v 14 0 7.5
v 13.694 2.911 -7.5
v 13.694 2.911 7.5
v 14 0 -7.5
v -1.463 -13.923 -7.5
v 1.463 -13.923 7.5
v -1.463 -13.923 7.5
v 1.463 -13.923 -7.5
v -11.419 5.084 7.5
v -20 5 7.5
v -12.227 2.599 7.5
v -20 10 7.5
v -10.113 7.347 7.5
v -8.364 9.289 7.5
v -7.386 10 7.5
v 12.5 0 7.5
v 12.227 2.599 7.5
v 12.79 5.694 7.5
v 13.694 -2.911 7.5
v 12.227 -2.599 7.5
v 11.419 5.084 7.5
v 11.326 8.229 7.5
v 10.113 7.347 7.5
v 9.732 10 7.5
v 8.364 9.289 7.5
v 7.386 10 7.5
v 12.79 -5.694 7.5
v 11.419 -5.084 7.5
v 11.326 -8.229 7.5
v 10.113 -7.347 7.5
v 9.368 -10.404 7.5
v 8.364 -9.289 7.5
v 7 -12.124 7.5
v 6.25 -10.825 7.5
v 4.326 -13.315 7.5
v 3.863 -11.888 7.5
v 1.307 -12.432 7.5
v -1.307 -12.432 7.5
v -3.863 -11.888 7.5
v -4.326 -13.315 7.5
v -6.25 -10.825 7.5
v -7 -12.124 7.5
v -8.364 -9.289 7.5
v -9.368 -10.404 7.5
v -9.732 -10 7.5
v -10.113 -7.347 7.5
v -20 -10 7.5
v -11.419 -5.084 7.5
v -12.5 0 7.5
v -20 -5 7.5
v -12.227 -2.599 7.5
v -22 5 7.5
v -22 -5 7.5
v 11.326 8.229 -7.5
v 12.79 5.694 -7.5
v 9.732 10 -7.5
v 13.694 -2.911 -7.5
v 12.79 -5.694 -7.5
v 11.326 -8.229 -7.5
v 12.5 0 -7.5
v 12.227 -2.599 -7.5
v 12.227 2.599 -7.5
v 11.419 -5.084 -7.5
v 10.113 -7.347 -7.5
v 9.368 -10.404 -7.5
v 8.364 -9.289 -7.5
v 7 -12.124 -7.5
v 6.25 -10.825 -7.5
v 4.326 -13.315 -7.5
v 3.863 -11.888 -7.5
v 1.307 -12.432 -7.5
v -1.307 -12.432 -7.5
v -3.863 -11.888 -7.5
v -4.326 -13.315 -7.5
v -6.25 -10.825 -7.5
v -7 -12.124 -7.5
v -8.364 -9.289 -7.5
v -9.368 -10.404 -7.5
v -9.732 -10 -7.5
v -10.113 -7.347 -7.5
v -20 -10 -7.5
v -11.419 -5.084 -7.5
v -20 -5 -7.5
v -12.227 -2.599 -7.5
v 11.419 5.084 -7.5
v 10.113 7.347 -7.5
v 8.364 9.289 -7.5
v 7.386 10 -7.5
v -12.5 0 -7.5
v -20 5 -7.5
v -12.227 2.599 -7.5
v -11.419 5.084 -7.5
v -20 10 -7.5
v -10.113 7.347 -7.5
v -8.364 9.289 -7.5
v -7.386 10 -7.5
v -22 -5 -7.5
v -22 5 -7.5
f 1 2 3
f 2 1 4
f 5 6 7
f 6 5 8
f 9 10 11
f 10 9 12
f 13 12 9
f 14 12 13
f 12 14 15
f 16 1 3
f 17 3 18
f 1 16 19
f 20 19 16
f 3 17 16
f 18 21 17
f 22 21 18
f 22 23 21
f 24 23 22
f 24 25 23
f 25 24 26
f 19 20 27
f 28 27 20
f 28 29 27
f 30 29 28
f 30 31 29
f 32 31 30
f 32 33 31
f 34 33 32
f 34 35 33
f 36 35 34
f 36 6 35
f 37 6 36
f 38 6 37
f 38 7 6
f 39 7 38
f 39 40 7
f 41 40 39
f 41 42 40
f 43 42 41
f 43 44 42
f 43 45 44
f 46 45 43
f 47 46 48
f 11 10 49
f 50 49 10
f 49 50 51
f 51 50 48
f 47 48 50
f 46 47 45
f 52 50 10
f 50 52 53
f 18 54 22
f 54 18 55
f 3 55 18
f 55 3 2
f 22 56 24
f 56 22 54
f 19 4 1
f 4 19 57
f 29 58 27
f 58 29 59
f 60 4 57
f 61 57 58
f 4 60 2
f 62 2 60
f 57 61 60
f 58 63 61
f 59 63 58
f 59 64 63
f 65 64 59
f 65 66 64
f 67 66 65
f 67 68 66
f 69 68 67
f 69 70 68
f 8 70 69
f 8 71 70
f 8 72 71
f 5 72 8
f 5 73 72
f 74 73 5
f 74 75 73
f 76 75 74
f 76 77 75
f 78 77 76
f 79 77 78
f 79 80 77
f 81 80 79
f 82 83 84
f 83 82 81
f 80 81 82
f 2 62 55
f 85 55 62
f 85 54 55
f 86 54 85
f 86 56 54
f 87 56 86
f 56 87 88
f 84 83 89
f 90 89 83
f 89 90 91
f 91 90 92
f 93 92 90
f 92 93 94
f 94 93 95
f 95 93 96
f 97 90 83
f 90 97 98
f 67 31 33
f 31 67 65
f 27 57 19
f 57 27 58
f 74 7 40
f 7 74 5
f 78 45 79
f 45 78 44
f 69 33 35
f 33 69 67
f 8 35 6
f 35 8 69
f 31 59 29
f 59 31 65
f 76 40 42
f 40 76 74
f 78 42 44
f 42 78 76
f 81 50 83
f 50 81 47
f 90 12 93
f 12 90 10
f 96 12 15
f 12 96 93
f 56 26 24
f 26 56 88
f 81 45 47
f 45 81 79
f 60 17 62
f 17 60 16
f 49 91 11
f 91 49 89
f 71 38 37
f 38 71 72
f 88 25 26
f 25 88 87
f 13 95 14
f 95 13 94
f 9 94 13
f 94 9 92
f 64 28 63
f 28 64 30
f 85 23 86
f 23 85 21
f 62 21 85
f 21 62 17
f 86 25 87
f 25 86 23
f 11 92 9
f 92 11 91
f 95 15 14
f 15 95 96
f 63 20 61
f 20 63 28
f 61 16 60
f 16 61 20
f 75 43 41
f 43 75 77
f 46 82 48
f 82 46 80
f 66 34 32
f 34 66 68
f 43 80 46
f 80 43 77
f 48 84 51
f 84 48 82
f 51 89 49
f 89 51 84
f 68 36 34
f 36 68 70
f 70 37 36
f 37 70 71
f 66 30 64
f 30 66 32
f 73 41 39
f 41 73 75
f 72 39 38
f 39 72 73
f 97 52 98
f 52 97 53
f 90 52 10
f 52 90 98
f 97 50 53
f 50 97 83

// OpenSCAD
// ------------------------------------------------------------------------------------------
// Swatch Holder for Filament Spool Holder (1/2) - Peg Clip
// ------------------------------------------------------------------------------------------
//
// Clip that snuggly fits around the pegs of this filament spool holder: 
// https://www.printables.com/model/388935-fully-printable-filament-storage-rack
//
// Print in rendered orientation, no supports or brim should be required
//
// https://github.com/SiDtheTurtle/CAD/SwatchHolderForFilamentSpoolHolder/
//
// ------------------------------------------------------------------------------------------

// ------------------------------------------------------------------------------------------
// Parameters
// ------------------------------------------------------------------------------------------

// Width of the clip that will clasp onto the peg, needs to match Join_Width of the swatch connector, not including Join_Tolerance
Clip_Width = 15; // [15:100]

// Thickness of the clip ring, thicker than 1.5 makes it hard to clip on to the peg
Clip_Thickness = 1.5; // [1:0.1:2]

// How much to reduce the size of the inner circle to in crease to bind the clip to the peg
Clutch_Tolerance = 0.0; // [0:0.1:1]

// Thickness of the joining nub, should match the Holder_Thickness setting of the swatch holder
Nub_Depth = 2; // [2:0.1:5]

// Height of the nub, should match the Cutout_Width parameter of the swatch holder
Nub_Height = 10; // [10:30]

// Hidden Parameters - Not normally required to be changed

/* [Hidden] */

// The diameter of the filament holder peg, usually not changed unless you scale the holder peg
Peg_Diameter = 25;

// Used to simplify the readabilty of the cylinder calcs
Peg_Radius = Peg_Diameter / 2;

// The inner radius of the clip that binds to the peg: take the radius of the peg, reduced, by the clutch tolerance, therefore the inner circle will be slightly smaller than the peg, allowing it to grip firmly
Clip_Inner_Radius = Peg_Radius - Clutch_Tolerance;

// The outer radius of the clip: the inner radius plus the user defined thickness
Clip_Outer_Radius = Clip_Inner_Radius + Clip_Thickness;

// Size of the connector block to space out the depth to the nub
Connector_Block_Width = 15;

// Size of the connector block height, needs to be set to be flush with the bottom of the clip
Connector_Block_Height = Peg_Diameter * 0.8;

// Translation factor to align connect to the bottom of clip
Connector_Alignment_Factor = 0.6;

// ------------------------------------------------------------------------------------------
// Rendering
// ------------------------------------------------------------------------------------------
difference() {
    union() {
        // Outer clip cylinder
        cylinder(
            h = Clip_Width,
            r = Clip_Outer_Radius,
        center = true
        );
        
        // Connecting cube
        translate ([-Peg_Radius, 0, 0]){
            cube([
                Connector_Block_Width,
                Connector_Block_Height,
                Clip_Width],
                center = true
            );
        }
    }
    // Inner clip cylinder cut out
    cylinder(
        h = Clip_Width + 1,
        r = Clip_Inner_Radius,
        center = true
    );
    // Bottom of clip cut out
    translate([0, Peg_Diameter * Connector_Alignment_Factor, 0]) {
        cube([
            Peg_Diameter * 2,
            Peg_Diameter * (1 - Connector_Alignment_Factor),
            Clip_Width + 1],
        center = true
        );
    }
}

// Connector nub
translate([-Peg_Radius - (Connector_Block_Width / 2) - (Nub_Depth /2 ), 0, 0]) {
    cube(
        [Nub_Depth,
        Nub_Height,
        Clip_Width],
        center = true
    );
}
